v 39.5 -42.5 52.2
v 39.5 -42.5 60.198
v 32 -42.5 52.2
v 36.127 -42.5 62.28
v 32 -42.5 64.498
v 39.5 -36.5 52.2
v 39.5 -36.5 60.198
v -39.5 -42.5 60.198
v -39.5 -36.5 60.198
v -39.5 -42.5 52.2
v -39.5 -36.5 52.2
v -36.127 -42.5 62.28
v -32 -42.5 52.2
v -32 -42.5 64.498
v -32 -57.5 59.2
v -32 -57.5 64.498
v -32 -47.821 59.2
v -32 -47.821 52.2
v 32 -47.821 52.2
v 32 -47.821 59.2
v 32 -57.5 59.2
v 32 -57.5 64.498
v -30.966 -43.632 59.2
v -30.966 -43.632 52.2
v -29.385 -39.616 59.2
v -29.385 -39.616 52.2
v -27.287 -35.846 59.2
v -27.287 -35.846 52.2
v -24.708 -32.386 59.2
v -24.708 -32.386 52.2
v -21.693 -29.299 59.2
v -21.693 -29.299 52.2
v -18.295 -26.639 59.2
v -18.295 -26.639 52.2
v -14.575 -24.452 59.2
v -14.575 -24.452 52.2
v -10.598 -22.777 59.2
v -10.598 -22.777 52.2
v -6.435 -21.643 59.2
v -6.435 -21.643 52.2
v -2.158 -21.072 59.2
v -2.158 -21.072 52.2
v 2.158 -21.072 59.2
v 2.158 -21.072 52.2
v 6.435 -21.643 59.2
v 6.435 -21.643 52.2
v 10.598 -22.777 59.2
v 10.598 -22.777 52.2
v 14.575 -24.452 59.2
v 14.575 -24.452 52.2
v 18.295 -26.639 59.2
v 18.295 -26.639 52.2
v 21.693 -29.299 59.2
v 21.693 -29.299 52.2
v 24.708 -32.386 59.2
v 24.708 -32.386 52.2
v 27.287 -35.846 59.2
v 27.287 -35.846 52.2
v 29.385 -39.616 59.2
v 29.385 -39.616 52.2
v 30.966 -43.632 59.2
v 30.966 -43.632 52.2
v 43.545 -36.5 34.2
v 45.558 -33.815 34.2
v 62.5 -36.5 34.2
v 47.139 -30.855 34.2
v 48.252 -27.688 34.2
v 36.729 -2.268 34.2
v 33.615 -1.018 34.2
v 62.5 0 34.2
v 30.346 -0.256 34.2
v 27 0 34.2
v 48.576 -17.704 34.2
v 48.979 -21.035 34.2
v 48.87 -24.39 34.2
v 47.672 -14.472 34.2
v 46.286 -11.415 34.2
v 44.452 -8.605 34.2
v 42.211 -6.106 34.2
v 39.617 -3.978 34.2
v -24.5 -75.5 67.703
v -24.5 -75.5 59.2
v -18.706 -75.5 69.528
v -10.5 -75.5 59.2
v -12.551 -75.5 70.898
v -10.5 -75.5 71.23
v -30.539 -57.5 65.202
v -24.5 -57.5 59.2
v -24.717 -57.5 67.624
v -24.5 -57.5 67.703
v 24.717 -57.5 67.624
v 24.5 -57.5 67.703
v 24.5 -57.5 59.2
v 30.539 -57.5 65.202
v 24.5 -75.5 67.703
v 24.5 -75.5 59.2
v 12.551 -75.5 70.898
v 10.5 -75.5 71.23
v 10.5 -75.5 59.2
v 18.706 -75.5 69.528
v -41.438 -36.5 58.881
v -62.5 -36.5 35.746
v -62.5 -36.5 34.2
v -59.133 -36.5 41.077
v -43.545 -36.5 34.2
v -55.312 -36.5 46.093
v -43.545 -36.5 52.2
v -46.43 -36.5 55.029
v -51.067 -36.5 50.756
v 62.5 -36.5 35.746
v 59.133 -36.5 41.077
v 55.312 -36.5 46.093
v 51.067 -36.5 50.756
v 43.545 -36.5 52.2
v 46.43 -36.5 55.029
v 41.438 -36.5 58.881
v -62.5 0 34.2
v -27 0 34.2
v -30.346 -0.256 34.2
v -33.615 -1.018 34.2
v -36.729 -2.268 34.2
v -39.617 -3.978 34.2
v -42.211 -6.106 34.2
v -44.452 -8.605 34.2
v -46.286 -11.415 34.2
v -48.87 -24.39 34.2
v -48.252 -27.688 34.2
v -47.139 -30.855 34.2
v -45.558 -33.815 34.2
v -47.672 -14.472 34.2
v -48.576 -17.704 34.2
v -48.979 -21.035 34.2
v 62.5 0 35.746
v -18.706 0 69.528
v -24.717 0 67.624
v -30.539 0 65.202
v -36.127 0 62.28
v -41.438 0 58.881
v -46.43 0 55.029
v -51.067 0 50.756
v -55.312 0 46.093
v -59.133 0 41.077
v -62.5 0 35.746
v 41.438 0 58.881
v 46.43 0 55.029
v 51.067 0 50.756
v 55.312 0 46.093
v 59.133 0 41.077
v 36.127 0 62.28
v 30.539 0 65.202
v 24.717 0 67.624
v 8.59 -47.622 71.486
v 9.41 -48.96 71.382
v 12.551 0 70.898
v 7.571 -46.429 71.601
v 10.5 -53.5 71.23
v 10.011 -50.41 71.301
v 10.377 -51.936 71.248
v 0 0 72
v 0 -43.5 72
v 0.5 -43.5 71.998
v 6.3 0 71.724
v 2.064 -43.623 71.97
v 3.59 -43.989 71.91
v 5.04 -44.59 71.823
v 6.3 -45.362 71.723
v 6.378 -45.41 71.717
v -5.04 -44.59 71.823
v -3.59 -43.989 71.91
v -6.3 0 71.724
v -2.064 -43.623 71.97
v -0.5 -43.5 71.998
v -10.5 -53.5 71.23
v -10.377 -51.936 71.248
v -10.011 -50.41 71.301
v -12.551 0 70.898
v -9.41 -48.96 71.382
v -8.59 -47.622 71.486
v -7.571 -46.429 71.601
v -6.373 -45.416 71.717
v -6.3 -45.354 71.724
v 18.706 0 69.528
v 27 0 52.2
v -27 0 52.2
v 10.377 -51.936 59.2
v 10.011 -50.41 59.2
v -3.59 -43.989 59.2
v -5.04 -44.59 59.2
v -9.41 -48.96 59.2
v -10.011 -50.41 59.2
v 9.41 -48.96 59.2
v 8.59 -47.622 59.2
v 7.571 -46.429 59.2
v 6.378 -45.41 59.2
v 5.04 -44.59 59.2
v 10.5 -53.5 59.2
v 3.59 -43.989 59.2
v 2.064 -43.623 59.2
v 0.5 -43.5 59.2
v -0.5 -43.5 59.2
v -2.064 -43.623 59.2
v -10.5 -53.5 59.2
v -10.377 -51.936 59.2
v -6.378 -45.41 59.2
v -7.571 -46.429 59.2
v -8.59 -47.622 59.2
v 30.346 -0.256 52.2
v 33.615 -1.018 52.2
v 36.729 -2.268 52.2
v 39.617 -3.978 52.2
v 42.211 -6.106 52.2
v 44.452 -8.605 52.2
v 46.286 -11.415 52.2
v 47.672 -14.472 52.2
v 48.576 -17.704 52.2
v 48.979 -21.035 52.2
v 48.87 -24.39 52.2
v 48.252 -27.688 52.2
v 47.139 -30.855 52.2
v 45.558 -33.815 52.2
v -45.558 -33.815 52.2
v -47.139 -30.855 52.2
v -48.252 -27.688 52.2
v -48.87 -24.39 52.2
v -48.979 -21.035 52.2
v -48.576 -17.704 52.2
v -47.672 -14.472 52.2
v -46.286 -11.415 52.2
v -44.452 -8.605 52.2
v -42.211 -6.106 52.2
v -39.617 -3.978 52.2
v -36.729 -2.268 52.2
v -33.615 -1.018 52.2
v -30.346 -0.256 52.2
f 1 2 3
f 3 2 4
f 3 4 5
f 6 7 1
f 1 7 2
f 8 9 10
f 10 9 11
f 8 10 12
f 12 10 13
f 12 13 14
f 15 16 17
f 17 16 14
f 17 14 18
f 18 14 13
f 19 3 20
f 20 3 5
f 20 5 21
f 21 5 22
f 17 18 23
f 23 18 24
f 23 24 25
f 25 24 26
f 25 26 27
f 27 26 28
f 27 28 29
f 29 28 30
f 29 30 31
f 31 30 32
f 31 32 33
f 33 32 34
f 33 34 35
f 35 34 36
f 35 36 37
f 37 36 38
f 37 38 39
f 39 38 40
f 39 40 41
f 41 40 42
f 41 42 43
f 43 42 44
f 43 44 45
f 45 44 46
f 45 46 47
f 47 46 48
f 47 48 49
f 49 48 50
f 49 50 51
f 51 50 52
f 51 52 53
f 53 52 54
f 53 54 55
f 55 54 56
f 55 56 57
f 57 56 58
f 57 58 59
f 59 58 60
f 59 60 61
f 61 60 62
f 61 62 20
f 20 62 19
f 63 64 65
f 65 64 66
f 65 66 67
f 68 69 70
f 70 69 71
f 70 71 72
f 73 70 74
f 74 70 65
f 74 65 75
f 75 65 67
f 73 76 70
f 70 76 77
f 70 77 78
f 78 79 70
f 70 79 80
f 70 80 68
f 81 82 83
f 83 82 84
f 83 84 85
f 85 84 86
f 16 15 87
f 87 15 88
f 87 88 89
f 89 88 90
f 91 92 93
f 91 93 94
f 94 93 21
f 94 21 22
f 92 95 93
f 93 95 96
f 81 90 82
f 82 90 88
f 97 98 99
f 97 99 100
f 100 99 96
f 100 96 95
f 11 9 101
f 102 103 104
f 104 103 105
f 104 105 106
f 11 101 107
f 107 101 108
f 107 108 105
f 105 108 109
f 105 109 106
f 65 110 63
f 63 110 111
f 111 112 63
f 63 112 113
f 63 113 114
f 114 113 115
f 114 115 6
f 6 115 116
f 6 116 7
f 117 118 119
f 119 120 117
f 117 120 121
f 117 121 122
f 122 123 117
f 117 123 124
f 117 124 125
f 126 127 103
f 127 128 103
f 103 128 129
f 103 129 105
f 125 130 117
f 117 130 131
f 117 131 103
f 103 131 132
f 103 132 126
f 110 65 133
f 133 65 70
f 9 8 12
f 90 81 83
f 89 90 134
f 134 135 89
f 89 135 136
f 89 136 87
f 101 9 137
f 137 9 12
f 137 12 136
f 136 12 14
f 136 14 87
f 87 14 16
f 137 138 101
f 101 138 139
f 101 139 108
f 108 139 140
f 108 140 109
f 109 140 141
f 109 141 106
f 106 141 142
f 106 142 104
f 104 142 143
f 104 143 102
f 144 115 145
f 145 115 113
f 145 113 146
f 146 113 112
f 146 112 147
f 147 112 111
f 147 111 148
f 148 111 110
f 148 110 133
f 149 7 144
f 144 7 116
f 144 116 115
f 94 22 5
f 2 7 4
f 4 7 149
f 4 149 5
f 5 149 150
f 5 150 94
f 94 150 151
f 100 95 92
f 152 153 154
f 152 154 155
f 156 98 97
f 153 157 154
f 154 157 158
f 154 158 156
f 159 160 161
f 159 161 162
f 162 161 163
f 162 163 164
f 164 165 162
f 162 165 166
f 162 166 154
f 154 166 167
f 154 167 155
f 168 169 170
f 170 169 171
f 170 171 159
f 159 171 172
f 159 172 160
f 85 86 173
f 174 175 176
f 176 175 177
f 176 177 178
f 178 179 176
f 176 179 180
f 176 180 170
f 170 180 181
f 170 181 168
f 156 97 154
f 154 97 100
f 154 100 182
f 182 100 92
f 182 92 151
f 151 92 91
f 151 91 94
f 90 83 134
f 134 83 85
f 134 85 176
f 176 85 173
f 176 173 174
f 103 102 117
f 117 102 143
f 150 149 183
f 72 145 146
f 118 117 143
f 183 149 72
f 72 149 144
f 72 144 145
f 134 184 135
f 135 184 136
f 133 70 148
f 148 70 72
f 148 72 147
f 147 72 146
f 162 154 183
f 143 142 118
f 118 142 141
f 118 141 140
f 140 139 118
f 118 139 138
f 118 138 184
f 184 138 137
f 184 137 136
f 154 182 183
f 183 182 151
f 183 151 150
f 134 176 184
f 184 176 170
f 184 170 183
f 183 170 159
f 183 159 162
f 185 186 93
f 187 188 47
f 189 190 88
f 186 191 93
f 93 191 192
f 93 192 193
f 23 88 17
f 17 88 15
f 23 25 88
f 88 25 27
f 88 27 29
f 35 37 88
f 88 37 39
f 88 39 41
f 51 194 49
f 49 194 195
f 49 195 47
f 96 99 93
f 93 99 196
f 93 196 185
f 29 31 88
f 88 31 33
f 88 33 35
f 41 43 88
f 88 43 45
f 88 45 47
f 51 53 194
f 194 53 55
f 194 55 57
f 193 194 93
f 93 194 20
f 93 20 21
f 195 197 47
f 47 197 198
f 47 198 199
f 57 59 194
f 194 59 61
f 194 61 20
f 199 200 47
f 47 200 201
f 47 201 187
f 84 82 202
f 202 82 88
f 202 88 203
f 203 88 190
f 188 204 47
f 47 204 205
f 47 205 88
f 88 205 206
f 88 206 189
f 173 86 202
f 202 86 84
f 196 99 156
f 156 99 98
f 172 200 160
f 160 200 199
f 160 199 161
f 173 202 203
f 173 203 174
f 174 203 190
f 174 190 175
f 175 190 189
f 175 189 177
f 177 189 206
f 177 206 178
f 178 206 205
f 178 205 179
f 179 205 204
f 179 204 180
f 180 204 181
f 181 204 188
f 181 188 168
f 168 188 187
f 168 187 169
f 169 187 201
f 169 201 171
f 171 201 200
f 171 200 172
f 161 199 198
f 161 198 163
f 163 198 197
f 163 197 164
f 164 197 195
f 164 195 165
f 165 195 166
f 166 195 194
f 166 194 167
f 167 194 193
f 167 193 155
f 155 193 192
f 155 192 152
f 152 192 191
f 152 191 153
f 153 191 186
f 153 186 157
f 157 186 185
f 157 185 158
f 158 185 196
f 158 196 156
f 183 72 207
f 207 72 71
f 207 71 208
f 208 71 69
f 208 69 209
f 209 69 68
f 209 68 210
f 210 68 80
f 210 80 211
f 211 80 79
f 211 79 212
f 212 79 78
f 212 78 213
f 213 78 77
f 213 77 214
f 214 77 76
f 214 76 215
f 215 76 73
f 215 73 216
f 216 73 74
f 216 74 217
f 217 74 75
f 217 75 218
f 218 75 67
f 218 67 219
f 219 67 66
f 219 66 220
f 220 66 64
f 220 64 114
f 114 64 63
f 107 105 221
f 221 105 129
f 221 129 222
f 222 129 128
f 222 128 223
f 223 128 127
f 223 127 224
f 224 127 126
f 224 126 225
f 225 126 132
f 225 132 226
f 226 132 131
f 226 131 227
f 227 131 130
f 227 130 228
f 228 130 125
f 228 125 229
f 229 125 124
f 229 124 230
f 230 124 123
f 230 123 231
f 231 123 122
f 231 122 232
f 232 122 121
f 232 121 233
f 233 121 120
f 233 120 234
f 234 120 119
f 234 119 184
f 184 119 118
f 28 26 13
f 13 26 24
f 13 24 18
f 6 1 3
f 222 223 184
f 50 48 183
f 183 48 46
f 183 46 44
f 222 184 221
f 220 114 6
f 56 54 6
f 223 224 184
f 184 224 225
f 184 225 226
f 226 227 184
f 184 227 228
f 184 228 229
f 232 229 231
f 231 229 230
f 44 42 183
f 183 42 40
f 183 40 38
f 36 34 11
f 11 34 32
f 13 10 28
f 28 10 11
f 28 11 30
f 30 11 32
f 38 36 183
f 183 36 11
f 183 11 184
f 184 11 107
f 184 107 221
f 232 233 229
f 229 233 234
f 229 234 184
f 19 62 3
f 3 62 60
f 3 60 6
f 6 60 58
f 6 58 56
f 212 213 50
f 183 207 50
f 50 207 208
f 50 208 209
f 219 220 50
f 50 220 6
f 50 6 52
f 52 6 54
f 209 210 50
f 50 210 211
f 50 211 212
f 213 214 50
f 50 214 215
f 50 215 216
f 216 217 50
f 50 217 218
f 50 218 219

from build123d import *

# Parameters (mm, degrees)
BOSS_EXTRUDE1_DEPTH = 36.5
BOSS_EXTRUDE2_DEPTH = 6
BOSS_EXTRUDE3_DEPTH = 15
BOSS_EXTRUDE4_DEPTH = 18
CUT_EXTRUDE2_DEPTH  = 25
SKETCH5_W           = 21
SKETCH5_H           = 37.8
CUT_EXTRUDE1_DEPTH  = 32
FILLET1_R           = 10
CUT_EXTRUDE3_DEPTH  = 18
SKETCH9_W           = 86.823098523
SKETCH9_H           = 11.225168108
CUT_EXTRUDE4_DEPTH  = 18


with BuildPart() as part:
    # Sketch1 → Boss-Extrude1 (new body)
    with BuildSketch(Plane(origin=(0, 0, 0), x_dir=(1, 0, 0), z_dir=(0, 1, 0))):
        with BuildLine():
            Line((-62.5, -34.2), (-62.5, -35.745629103))
            ThreePointArc((-62.5, -35.745629103), (0, -72), (62.5, -35.745629103))
            Line((62.5, -35.745629103), (62.5, -34.2))
            Line((62.5, -34.2), (-62.5, -34.2))
        make_face()
    extrude(amount=-BOSS_EXTRUDE1_DEPTH)

    # Sketch2 → Boss-Extrude2 (add)
    with BuildSketch(Plane.XZ.offset(36.5)):
        with BuildLine():
            ThreePointArc((39.5, 60.197591314), (0, 72), (-39.5, 60.197591314))
            Line((-39.5, 60.197591314), (-39.5, 34.2))
            Line((-39.5, 34.2), (39.5, 34.2))
            Line((39.5, 34.2), (39.5, 60.197591314))
        make_face()
    extrude(amount=BOSS_EXTRUDE2_DEPTH)

    # Sketch3 → Boss-Extrude3 (add)
    with BuildSketch(Plane.XZ.offset(42.5)):
        with BuildLine():
            Line((-32, 64.498061986), (-32, 34.2))
            Line((-32, 34.2), (32, 34.2))
            Line((32, 34.2), (32, 64.498061986))
            ThreePointArc((32, 64.498061986), (0, 72), (-32, 64.498061986))
        make_face()
    extrude(amount=BOSS_EXTRUDE3_DEPTH)

    # Sketch4 → Boss-Extrude4 (add)
    with BuildSketch(Plane.XZ.offset(57.5)):
        with BuildLine():
            Line((-24.5, 34.2), (-24.5, 67.703397256))
            ThreePointArc((-24.5, 67.703397256), (0, 72), (24.5, 67.703397256))
            Line((24.5, 67.703397256), (24.5, 34.2))
            Line((24.5, 34.2), (-24.5, 34.2))
        make_face()
    extrude(amount=BOSS_EXTRUDE4_DEPTH)

    # Sketch7 → Cut-Extrude2 (cut)
    with BuildSketch(Plane(origin=(0, 0, 34.2), x_dir=(-1, 0, 0), z_dir=(0, 0, -1))):
        with BuildLine():
            Line((-32.5, -53.5), (-32.5, -86))
            Line((-32.5, -86), (32.5, -86))
            Line((32.5, -86), (32.5, -53.5))
            ThreePointArc((32.5, -53.5), (0, -21), (-32.5, -53.5))
        make_face()
    extrude(amount=-CUT_EXTRUDE2_DEPTH, mode=Mode.SUBTRACT)

    # Sketch5 → Cut-Extrude1 (cut)
    with BuildSketch(Plane.XZ.offset(75.5)):
        with Locations((0, 53.1)):
            Rectangle(SKETCH5_W, SKETCH5_H)
    extrude(amount=-CUT_EXTRUDE1_DEPTH, mode=Mode.SUBTRACT)

    # Fillet1
    fillet1_edges = [part.edges().sort_by_distance(p)[0] for p in [
        (-10.5, -43.5, 65.215130212),
        (10.5, -43.5, 65.215130212),
    ]]
    fillet(fillet1_edges, radius=FILLET1_R)

    # Sketch8 → Cut-Extrude3 (cut)
    with BuildSketch(Plane(origin=(0, 0, 34.2), x_dir=(-1, 0, 0), z_dir=(0, 0, -1))):
        with BuildLine():
            Line((-27, 0), (27, 0))
            ThreePointArc((27, 0), (49, -22), (27, -44))
            Line((27, -44), (-27, -44))
            ThreePointArc((-27, -44), (-49, -22), (-27, 0))
        make_face()
    extrude(amount=-CUT_EXTRUDE3_DEPTH, mode=Mode.SUBTRACT)

    # Sketch9 → Cut-Extrude4 (cut)
    with BuildSketch(Plane(origin=(0, 0, 34.2), x_dir=(-1, 0, 0), z_dir=(0, 0, -1))):
        with Locations((0.144250153, -44.182683468)):
            Rectangle(SKETCH9_W, SKETCH9_H)
    extrude(amount=-CUT_EXTRUDE4_DEPTH, mode=Mode.SUBTRACT)


solid = part.part
